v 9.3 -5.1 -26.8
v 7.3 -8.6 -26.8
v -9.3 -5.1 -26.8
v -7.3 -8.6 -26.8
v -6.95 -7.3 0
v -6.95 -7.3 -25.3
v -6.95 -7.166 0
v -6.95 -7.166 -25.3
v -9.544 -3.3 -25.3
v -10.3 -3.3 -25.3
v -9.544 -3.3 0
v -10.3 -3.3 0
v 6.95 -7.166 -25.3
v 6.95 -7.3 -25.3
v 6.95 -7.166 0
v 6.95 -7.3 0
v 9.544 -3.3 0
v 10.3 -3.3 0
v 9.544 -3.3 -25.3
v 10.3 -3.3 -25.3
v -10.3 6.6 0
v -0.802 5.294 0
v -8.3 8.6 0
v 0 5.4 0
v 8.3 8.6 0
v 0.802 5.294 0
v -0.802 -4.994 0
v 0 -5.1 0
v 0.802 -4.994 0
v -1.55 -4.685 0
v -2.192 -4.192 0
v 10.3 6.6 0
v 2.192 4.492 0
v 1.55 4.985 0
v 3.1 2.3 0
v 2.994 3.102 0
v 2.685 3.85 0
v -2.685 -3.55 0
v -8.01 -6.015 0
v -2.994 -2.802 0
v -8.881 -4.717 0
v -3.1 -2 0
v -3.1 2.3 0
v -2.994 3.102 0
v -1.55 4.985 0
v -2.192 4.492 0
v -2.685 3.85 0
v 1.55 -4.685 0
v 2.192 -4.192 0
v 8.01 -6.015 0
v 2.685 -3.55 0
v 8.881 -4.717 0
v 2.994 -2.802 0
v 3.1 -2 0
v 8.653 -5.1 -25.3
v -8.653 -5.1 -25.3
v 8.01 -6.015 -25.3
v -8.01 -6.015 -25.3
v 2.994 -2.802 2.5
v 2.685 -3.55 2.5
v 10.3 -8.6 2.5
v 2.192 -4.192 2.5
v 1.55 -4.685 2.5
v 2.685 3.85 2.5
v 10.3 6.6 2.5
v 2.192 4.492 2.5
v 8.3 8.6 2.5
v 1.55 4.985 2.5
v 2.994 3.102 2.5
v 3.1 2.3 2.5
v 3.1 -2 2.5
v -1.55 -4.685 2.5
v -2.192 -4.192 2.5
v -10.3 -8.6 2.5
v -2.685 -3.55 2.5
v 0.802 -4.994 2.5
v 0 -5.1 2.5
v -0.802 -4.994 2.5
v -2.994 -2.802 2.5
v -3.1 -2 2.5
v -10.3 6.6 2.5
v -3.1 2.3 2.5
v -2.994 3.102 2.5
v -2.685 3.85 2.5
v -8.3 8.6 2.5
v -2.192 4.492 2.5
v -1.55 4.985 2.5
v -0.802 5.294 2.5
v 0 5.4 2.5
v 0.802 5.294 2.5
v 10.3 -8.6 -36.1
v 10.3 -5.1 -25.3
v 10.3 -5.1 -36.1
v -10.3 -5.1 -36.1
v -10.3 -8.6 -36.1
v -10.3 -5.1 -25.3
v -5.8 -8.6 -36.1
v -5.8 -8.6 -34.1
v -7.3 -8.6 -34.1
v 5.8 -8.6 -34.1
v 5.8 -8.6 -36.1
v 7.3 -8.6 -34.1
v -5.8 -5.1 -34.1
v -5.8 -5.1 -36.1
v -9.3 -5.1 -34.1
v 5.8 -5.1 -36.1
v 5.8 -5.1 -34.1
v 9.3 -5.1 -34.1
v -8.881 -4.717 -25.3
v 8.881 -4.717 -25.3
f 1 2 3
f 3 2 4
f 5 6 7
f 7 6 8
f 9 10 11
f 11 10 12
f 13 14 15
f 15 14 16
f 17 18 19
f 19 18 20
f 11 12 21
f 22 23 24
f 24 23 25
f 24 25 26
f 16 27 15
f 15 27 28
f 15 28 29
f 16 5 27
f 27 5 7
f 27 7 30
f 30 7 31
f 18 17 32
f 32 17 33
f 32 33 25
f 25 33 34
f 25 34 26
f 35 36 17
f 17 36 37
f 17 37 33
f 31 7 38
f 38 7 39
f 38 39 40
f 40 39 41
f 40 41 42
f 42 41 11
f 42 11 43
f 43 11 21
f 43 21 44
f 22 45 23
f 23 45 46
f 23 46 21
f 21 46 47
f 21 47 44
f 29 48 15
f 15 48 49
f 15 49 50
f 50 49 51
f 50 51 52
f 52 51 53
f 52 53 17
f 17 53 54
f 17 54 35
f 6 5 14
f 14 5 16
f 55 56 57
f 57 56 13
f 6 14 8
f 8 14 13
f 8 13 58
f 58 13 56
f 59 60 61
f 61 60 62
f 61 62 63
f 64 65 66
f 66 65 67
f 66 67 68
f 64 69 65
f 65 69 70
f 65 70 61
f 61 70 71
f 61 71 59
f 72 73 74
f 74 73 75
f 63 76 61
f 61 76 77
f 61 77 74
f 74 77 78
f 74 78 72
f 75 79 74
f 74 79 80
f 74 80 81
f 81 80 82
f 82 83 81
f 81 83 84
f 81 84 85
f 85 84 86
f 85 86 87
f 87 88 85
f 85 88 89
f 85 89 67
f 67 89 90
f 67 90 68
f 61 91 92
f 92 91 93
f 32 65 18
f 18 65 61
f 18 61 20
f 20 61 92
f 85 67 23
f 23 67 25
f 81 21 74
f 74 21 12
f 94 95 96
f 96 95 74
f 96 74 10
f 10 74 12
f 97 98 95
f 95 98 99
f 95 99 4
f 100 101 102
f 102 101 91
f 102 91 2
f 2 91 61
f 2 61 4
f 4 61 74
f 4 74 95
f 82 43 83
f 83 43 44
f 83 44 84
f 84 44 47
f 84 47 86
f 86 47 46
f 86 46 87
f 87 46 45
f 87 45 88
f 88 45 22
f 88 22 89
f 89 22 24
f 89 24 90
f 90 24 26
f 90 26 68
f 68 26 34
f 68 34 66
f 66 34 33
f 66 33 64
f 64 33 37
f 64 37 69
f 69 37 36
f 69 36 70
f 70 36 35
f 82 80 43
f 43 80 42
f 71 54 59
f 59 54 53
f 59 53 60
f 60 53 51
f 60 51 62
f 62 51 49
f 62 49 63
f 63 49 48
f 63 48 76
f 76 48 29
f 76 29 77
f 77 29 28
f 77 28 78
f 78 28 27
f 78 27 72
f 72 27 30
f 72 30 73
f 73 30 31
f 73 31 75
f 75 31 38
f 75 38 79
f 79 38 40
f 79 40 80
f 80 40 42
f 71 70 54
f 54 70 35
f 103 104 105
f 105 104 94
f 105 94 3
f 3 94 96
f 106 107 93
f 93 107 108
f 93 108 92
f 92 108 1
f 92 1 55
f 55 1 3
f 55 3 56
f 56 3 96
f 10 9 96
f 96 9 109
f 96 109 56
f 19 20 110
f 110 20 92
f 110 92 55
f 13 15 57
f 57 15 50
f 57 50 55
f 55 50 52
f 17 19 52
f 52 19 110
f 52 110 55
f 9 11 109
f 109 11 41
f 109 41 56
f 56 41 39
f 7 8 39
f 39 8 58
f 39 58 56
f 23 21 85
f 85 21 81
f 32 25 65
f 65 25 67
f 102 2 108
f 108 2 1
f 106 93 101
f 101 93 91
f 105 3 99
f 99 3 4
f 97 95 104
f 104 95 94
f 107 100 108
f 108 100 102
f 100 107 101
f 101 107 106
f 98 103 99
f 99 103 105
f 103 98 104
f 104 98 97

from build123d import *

# Parameters (mm, degrees)
SKETCH1_W           = 20.6
SKETCH1_H           = 17.2
BOSS_EXTRUDE1_DEPTH = 2.5
SKETCH2_W           = 20.6
SKETCH2_H           = 1.3
BOSS_EXTRUDE2_DEPTH = 25.3
SKETCH3_W           = 20.6
SKETCH3_H           = 3.5
BOSS_EXTRUDE3_DEPTH = 1.5
SKETCH4_W           = 3.35
SKETCH4_H           = 25.3
BOSS_EXTRUDE4_DEPTH = 4
CUT_EXTRUDE2_START  = 25.3
CUT_EXTRUDE2_DEPTH  = 25.3
CHAMFER1_SIZE       = 2
BOSS_EXTRUDE5_DEPTH = 9.3
SKETCH7_W           = 4.5
SKETCH7_H           = 3.5
BOSS_EXTRUDE6_DEPTH = 2


with BuildPart() as part:
    # Sketch1 → Boss-Extrude1 (new body)
    with BuildSketch(Plane.XY):
        Rectangle(SKETCH1_W, SKETCH1_H)
        with BuildLine():
            Line((3.1, 2.3), (3.1, -2))
            ThreePointArc((3.1, -2), (0, -5.1), (-3.1, -2))
            Line((-3.1, -2), (-3.1, 2.3))
            ThreePointArc((-3.1, 2.3), (0, 5.4), (3.1, 2.3))
        make_face(mode=Mode.SUBTRACT)
    extrude(amount=BOSS_EXTRUDE1_DEPTH)

    # Sketch2 → Boss-Extrude2 (add)
    with BuildSketch(Plane(origin=(0, 0, 0), x_dir=(-1, 0, 0), z_dir=(0, 0, -1))):
        with Locations((0, -7.95)):
            Rectangle(SKETCH2_W, SKETCH2_H)
    extrude(amount=BOSS_EXTRUDE2_DEPTH)

    # Sketch3 → Boss-Extrude3 (add)
    with BuildSketch(Plane(origin=(0, 0, -25.3), x_dir=(-1, 0, 0), z_dir=(0, 0, -1))):
        with Locations((0, -6.85)):
            Rectangle(SKETCH3_W, SKETCH3_H)
    extrude(amount=BOSS_EXTRUDE3_DEPTH)

    # Sketch4 → Boss-Extrude4 (add)
    with BuildSketch(Plane(origin=(0, -7.3, 0), x_dir=(1, 0, 0), z_dir=(0, 1, 0))):
        with Locations((-8.625, 12.65)):
            Rectangle(SKETCH4_W, SKETCH4_H)
        with Locations((8.625, 12.65)):
            Rectangle(SKETCH4_W, SKETCH4_H)
    extrude(amount=BOSS_EXTRUDE4_DEPTH)

    # Sketch5 → Cut-Extrude2 (cut)
    # profile 1 of 3: a face of its own
    with BuildSketch(Plane(origin=(0, 0, 0), x_dir=(-1, 0, 0), z_dir=(0, 0, -1)).offset(CUT_EXTRUDE2_START)):
        with BuildLine():
            Line((-6.802940541, -7.3), (6.802940541, -7.3))
            ThreePointArc((6.802940541, -7.3), (6.876797859, -7.233236436), (6.95, -7.165755153))
            Line((6.95, -7.165755153), (6.95, -3.3))
            Line((6.95, -3.3), (9.543584232, -3.3))
            ThreePointArc((9.543584232, -3.3), (10.034554279, -1.529677681), (10.2, 0.3))
            ThreePointArc((10.2, 0.3), (9.069541999, 4.967269858), (5.928743543, 8.6))
            Line((5.928743543, 8.6), (-5.928743543, 8.6))
            ThreePointArc((-5.928743543, 8.6), (-9.759648134, 3.264670016), (-9.543584232, -3.3))
            Line((-9.543584232, -3.3), (-6.95, -3.3))
            Line((-6.95, -3.3), (-6.95, -7.165755153))
            ThreePointArc((-6.95, -7.165755153), (-6.876797859, -7.233236436), (-6.802940541, -7.3))
        make_face()
        with BuildLine():
            ThreePointArc((3.1, -2), (0, -5.1), (-3.1, -2))
            Line((-3.1, -2), (-3.1, 2.3))
            ThreePointArc((-3.1, 2.3), (0, 5.4), (3.1, 2.3))
            Line((3.1, 2.3), (3.1, -2))
        make_face(mode=Mode.SUBTRACT)
    # profile 2 of 3: a face of its own
    with BuildSketch(Plane(origin=(0, 0, 0), x_dir=(-1, 0, 0), z_dir=(0, 0, -1)).offset(CUT_EXTRUDE2_START)):
        with BuildLine():
            Line((6.95, -3.3), (6.95, -7.165755153))
            ThreePointArc((6.95, -7.165755153), (8.470277205, -5.382816561), (9.543584232, -3.3))
            Line((9.543584232, -3.3), (6.95, -3.3))
        make_face()
    # profile 3 of 3: a face of its own
    with BuildSketch(Plane(origin=(0, 0, 0), x_dir=(-1, 0, 0), z_dir=(0, 0, -1)).offset(CUT_EXTRUDE2_START)):
        with BuildLine():
            ThreePointArc((-9.543584232, -3.3), (-8.470277205, -5.382816561), (-6.95, -7.165755153))
            Line((-6.95, -7.165755153), (-6.95, -3.3))
            Line((-6.95, -3.3), (-9.543584232, -3.3))
        make_face()
    extrude(amount=-CUT_EXTRUDE2_DEPTH, mode=Mode.SUBTRACT)

    # Chamfer1
    chamfer1_edges = [part.edges().sort_by_distance(p)[0] for p in [
        (-10.3, 8.6, 1.25),
        (10.3, 8.6, 1.25),
    ]]
    chamfer(chamfer1_edges, length=CHAMFER1_SIZE)

    # Sketch6 → Boss-Extrude5 (add)
    with BuildSketch(Plane(origin=(0, 0, -26.8), x_dir=(-1, 0, 0), z_dir=(0, 0, -1))):
        Polygon((-7.3, -8.6), (-10.3, -8.6), (-10.3, -5.1), (-9.3, -5.1), align=None)
        Polygon((9.3, -5.1), (7.3, -8.6), (10.3, -8.6), (10.3, -5.1), align=None)
    extrude(amount=BOSS_EXTRUDE5_DEPTH)

    # Sketch7 → Boss-Extrude6 (add)
    with BuildSketch(Plane(origin=(0, 0, -36.1), x_dir=(-1, 0, 0), z_dir=(0, 0, -1))):
        with Locations((-8.05, -6.85)):
            Rectangle(SKETCH7_W, SKETCH7_H)
        with Locations((8.05, -6.85)):
            Rectangle(SKETCH7_W, SKETCH7_H)
    extrude(amount=-BOSS_EXTRUDE6_DEPTH)


solid = part.part
